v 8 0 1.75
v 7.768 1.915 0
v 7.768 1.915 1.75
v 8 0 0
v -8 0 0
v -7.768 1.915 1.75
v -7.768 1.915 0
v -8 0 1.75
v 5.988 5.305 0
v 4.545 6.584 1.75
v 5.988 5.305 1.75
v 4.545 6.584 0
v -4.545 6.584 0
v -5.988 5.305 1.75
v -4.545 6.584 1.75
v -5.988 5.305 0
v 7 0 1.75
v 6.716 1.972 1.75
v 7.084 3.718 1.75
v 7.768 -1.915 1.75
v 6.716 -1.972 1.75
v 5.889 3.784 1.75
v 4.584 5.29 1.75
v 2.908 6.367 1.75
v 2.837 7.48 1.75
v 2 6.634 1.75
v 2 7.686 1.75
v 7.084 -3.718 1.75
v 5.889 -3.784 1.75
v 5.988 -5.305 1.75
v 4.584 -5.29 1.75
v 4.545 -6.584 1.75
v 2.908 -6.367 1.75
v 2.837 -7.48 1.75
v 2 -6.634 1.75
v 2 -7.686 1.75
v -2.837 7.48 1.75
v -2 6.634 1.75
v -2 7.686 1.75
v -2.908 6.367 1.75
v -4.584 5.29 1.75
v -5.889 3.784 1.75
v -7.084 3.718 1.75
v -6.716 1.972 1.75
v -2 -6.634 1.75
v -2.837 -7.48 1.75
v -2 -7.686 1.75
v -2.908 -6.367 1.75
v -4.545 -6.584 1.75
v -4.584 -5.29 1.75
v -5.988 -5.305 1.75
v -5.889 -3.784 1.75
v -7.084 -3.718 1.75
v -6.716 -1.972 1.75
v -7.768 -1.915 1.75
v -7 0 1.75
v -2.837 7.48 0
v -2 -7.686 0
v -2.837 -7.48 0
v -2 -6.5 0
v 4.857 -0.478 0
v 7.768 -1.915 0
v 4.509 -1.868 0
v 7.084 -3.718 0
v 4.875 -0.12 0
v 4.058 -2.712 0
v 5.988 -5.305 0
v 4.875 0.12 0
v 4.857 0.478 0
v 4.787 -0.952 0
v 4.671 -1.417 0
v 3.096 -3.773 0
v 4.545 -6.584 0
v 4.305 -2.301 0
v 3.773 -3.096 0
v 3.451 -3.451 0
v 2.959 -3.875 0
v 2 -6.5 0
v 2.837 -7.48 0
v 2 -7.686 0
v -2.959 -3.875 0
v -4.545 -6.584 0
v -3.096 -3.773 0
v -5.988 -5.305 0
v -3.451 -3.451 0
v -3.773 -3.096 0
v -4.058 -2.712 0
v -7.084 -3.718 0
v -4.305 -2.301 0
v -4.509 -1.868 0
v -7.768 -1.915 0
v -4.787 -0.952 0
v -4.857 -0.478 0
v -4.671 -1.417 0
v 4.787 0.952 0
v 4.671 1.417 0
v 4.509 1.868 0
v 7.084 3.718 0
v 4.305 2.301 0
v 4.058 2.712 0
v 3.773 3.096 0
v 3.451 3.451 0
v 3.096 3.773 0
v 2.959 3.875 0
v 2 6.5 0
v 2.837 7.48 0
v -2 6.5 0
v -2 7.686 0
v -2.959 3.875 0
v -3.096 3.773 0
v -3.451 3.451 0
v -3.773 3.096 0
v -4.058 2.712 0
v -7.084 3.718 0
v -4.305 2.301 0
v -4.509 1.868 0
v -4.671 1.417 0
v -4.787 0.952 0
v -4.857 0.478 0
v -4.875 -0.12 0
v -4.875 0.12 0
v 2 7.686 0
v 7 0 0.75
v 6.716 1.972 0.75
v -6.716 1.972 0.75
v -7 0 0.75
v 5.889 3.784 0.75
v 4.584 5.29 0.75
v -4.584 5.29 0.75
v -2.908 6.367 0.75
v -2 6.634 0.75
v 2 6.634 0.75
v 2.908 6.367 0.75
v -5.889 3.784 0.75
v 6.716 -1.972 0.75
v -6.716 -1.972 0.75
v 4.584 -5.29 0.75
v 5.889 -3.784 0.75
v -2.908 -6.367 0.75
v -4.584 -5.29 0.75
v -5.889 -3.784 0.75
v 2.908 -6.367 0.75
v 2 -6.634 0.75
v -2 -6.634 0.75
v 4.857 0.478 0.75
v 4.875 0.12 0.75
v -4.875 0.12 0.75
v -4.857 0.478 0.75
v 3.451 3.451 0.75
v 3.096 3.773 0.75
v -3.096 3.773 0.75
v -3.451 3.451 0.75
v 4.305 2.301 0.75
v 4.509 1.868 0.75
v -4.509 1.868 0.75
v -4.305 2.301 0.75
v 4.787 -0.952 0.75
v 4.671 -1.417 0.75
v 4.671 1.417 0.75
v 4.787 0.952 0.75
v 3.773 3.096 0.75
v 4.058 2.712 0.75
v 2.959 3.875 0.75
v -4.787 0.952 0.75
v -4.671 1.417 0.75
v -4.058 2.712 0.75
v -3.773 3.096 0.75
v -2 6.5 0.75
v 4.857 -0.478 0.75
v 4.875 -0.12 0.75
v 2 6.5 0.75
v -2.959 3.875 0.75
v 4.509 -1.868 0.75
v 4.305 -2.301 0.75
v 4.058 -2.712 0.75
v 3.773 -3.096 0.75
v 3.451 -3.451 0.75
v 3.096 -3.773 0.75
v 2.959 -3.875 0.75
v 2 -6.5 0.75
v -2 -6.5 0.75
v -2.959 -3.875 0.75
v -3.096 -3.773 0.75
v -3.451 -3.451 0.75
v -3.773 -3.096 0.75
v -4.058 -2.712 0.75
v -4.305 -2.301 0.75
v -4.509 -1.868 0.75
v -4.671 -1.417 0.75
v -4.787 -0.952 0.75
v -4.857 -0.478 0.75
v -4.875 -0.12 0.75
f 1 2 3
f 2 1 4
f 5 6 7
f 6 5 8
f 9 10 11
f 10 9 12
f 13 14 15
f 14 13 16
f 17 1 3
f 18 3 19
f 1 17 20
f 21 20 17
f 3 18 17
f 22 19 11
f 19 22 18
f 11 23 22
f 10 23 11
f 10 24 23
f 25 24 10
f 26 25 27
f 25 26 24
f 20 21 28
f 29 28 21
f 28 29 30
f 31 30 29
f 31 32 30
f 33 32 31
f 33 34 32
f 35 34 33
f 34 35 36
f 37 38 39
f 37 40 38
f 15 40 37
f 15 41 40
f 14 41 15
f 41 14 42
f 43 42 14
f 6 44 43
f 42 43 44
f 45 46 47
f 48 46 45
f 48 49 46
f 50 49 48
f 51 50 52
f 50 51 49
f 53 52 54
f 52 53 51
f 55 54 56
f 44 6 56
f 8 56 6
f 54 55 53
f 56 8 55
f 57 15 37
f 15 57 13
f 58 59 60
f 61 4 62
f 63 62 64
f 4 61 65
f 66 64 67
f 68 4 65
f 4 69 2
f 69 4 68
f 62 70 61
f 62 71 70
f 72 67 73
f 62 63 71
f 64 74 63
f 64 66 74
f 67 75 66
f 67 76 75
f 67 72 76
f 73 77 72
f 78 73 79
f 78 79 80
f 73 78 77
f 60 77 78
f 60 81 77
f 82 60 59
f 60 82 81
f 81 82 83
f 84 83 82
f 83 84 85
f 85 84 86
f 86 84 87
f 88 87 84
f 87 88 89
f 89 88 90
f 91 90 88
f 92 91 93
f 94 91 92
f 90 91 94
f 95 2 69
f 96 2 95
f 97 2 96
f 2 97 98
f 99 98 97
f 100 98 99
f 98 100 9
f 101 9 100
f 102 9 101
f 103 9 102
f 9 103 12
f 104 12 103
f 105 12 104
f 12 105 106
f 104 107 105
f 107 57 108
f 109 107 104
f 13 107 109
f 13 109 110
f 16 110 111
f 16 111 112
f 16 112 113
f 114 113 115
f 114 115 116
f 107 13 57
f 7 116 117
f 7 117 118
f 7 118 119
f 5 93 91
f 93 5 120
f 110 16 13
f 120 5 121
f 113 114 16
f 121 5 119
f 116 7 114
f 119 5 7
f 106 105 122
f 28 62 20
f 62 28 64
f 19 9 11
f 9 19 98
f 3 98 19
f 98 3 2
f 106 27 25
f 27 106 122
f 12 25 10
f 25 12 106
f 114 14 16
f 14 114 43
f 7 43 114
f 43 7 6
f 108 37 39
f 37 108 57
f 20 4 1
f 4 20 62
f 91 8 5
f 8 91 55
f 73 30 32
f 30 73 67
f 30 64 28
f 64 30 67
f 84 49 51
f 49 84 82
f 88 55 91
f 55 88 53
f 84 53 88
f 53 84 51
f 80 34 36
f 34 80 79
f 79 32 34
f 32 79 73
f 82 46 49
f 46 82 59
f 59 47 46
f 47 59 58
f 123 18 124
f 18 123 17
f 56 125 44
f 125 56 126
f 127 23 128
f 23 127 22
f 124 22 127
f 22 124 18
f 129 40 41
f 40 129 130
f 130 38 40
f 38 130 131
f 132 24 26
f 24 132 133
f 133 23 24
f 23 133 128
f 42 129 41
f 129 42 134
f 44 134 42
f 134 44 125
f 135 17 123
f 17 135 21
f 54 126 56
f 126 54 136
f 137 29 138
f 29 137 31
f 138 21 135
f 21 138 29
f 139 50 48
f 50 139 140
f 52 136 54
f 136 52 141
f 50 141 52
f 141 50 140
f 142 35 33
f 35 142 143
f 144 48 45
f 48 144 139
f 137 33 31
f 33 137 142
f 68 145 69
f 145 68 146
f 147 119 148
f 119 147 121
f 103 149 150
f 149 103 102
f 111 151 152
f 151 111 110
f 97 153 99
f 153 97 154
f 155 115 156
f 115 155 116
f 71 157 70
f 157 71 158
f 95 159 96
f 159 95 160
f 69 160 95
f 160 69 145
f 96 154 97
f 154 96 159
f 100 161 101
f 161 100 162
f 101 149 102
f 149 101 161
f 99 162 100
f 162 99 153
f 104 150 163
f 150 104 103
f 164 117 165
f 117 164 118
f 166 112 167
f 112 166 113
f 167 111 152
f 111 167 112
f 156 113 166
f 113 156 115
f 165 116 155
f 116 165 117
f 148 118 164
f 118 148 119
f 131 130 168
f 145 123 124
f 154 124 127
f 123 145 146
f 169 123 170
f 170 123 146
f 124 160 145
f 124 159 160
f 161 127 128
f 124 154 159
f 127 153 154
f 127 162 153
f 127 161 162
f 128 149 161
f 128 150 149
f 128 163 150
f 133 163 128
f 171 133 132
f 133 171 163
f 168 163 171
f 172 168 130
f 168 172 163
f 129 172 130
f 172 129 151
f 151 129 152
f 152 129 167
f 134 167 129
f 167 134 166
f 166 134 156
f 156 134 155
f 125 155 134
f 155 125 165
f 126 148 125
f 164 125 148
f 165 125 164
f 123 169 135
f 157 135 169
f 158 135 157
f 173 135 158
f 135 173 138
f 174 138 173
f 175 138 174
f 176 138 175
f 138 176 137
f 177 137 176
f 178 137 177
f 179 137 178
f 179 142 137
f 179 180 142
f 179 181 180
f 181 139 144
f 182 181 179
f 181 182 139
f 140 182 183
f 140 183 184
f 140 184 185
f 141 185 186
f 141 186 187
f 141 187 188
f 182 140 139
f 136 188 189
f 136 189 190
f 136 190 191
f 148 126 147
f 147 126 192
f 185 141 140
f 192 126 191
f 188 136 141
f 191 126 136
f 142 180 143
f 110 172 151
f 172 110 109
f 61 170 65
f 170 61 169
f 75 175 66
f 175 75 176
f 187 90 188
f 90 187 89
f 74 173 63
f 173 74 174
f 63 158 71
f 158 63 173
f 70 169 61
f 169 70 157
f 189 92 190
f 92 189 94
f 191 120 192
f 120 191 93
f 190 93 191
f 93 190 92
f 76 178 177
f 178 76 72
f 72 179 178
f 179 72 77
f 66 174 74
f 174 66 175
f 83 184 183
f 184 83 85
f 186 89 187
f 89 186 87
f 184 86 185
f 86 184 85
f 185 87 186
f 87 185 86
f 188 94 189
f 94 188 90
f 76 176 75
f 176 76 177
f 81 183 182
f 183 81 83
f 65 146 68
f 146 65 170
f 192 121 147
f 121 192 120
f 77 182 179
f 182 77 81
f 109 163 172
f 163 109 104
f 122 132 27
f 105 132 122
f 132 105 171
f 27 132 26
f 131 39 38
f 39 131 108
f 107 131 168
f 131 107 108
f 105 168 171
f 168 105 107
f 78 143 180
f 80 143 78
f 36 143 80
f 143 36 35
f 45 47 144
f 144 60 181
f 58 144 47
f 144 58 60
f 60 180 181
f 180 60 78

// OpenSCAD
TOOTH_WIDTH = 4;
TOOTH_HEIGHT = 1;
PRIMARY_DIAMETER = 9.75;
DISC_HEIGHT = 0.75;
INSET = 1.0;
DISC_OUTER_DIAMETER = 16;

module cylinder_outer(height,radius,fn){
   fudge = 1/cos(180/fn);
   cylinder(h=height,r=radius*fudge,$fn=fn);
}

    difference() {
        union() {
            difference() {
                cylinder(d=DISC_OUTER_DIAMETER, h=DISC_HEIGHT + 1);
                cylinder(d=DISC_OUTER_DIAMETER-2, h=DISC_HEIGHT + 1);
            }
            difference() {
                cylinder(d=DISC_OUTER_DIAMETER, h=DISC_HEIGHT);
                intersection() {
                    cylinder_outer(DISC_HEIGHT, PRIMARY_DIAMETER/2, 64);
                    linear_extrude(height=DISC_HEIGHT) square([PRIMARY_DIAMETER, PRIMARY_DIAMETER - (INSET * 2)], center=true);
                }
            }
            
        }
        union() {
            translate([0, (DISC_OUTER_DIAMETER/2) - (TOOTH_HEIGHT/2), 0]) linear_extrude(height=DISC_HEIGHT + 1) square([TOOTH_WIDTH, 2], center=true);
            translate([0, (DISC_OUTER_DIAMETER/-2) + (TOOTH_HEIGHT/2), 0]) linear_extrude(height=DISC_HEIGHT + 1) square([TOOTH_WIDTH, 2], center=true);
        }
    }
